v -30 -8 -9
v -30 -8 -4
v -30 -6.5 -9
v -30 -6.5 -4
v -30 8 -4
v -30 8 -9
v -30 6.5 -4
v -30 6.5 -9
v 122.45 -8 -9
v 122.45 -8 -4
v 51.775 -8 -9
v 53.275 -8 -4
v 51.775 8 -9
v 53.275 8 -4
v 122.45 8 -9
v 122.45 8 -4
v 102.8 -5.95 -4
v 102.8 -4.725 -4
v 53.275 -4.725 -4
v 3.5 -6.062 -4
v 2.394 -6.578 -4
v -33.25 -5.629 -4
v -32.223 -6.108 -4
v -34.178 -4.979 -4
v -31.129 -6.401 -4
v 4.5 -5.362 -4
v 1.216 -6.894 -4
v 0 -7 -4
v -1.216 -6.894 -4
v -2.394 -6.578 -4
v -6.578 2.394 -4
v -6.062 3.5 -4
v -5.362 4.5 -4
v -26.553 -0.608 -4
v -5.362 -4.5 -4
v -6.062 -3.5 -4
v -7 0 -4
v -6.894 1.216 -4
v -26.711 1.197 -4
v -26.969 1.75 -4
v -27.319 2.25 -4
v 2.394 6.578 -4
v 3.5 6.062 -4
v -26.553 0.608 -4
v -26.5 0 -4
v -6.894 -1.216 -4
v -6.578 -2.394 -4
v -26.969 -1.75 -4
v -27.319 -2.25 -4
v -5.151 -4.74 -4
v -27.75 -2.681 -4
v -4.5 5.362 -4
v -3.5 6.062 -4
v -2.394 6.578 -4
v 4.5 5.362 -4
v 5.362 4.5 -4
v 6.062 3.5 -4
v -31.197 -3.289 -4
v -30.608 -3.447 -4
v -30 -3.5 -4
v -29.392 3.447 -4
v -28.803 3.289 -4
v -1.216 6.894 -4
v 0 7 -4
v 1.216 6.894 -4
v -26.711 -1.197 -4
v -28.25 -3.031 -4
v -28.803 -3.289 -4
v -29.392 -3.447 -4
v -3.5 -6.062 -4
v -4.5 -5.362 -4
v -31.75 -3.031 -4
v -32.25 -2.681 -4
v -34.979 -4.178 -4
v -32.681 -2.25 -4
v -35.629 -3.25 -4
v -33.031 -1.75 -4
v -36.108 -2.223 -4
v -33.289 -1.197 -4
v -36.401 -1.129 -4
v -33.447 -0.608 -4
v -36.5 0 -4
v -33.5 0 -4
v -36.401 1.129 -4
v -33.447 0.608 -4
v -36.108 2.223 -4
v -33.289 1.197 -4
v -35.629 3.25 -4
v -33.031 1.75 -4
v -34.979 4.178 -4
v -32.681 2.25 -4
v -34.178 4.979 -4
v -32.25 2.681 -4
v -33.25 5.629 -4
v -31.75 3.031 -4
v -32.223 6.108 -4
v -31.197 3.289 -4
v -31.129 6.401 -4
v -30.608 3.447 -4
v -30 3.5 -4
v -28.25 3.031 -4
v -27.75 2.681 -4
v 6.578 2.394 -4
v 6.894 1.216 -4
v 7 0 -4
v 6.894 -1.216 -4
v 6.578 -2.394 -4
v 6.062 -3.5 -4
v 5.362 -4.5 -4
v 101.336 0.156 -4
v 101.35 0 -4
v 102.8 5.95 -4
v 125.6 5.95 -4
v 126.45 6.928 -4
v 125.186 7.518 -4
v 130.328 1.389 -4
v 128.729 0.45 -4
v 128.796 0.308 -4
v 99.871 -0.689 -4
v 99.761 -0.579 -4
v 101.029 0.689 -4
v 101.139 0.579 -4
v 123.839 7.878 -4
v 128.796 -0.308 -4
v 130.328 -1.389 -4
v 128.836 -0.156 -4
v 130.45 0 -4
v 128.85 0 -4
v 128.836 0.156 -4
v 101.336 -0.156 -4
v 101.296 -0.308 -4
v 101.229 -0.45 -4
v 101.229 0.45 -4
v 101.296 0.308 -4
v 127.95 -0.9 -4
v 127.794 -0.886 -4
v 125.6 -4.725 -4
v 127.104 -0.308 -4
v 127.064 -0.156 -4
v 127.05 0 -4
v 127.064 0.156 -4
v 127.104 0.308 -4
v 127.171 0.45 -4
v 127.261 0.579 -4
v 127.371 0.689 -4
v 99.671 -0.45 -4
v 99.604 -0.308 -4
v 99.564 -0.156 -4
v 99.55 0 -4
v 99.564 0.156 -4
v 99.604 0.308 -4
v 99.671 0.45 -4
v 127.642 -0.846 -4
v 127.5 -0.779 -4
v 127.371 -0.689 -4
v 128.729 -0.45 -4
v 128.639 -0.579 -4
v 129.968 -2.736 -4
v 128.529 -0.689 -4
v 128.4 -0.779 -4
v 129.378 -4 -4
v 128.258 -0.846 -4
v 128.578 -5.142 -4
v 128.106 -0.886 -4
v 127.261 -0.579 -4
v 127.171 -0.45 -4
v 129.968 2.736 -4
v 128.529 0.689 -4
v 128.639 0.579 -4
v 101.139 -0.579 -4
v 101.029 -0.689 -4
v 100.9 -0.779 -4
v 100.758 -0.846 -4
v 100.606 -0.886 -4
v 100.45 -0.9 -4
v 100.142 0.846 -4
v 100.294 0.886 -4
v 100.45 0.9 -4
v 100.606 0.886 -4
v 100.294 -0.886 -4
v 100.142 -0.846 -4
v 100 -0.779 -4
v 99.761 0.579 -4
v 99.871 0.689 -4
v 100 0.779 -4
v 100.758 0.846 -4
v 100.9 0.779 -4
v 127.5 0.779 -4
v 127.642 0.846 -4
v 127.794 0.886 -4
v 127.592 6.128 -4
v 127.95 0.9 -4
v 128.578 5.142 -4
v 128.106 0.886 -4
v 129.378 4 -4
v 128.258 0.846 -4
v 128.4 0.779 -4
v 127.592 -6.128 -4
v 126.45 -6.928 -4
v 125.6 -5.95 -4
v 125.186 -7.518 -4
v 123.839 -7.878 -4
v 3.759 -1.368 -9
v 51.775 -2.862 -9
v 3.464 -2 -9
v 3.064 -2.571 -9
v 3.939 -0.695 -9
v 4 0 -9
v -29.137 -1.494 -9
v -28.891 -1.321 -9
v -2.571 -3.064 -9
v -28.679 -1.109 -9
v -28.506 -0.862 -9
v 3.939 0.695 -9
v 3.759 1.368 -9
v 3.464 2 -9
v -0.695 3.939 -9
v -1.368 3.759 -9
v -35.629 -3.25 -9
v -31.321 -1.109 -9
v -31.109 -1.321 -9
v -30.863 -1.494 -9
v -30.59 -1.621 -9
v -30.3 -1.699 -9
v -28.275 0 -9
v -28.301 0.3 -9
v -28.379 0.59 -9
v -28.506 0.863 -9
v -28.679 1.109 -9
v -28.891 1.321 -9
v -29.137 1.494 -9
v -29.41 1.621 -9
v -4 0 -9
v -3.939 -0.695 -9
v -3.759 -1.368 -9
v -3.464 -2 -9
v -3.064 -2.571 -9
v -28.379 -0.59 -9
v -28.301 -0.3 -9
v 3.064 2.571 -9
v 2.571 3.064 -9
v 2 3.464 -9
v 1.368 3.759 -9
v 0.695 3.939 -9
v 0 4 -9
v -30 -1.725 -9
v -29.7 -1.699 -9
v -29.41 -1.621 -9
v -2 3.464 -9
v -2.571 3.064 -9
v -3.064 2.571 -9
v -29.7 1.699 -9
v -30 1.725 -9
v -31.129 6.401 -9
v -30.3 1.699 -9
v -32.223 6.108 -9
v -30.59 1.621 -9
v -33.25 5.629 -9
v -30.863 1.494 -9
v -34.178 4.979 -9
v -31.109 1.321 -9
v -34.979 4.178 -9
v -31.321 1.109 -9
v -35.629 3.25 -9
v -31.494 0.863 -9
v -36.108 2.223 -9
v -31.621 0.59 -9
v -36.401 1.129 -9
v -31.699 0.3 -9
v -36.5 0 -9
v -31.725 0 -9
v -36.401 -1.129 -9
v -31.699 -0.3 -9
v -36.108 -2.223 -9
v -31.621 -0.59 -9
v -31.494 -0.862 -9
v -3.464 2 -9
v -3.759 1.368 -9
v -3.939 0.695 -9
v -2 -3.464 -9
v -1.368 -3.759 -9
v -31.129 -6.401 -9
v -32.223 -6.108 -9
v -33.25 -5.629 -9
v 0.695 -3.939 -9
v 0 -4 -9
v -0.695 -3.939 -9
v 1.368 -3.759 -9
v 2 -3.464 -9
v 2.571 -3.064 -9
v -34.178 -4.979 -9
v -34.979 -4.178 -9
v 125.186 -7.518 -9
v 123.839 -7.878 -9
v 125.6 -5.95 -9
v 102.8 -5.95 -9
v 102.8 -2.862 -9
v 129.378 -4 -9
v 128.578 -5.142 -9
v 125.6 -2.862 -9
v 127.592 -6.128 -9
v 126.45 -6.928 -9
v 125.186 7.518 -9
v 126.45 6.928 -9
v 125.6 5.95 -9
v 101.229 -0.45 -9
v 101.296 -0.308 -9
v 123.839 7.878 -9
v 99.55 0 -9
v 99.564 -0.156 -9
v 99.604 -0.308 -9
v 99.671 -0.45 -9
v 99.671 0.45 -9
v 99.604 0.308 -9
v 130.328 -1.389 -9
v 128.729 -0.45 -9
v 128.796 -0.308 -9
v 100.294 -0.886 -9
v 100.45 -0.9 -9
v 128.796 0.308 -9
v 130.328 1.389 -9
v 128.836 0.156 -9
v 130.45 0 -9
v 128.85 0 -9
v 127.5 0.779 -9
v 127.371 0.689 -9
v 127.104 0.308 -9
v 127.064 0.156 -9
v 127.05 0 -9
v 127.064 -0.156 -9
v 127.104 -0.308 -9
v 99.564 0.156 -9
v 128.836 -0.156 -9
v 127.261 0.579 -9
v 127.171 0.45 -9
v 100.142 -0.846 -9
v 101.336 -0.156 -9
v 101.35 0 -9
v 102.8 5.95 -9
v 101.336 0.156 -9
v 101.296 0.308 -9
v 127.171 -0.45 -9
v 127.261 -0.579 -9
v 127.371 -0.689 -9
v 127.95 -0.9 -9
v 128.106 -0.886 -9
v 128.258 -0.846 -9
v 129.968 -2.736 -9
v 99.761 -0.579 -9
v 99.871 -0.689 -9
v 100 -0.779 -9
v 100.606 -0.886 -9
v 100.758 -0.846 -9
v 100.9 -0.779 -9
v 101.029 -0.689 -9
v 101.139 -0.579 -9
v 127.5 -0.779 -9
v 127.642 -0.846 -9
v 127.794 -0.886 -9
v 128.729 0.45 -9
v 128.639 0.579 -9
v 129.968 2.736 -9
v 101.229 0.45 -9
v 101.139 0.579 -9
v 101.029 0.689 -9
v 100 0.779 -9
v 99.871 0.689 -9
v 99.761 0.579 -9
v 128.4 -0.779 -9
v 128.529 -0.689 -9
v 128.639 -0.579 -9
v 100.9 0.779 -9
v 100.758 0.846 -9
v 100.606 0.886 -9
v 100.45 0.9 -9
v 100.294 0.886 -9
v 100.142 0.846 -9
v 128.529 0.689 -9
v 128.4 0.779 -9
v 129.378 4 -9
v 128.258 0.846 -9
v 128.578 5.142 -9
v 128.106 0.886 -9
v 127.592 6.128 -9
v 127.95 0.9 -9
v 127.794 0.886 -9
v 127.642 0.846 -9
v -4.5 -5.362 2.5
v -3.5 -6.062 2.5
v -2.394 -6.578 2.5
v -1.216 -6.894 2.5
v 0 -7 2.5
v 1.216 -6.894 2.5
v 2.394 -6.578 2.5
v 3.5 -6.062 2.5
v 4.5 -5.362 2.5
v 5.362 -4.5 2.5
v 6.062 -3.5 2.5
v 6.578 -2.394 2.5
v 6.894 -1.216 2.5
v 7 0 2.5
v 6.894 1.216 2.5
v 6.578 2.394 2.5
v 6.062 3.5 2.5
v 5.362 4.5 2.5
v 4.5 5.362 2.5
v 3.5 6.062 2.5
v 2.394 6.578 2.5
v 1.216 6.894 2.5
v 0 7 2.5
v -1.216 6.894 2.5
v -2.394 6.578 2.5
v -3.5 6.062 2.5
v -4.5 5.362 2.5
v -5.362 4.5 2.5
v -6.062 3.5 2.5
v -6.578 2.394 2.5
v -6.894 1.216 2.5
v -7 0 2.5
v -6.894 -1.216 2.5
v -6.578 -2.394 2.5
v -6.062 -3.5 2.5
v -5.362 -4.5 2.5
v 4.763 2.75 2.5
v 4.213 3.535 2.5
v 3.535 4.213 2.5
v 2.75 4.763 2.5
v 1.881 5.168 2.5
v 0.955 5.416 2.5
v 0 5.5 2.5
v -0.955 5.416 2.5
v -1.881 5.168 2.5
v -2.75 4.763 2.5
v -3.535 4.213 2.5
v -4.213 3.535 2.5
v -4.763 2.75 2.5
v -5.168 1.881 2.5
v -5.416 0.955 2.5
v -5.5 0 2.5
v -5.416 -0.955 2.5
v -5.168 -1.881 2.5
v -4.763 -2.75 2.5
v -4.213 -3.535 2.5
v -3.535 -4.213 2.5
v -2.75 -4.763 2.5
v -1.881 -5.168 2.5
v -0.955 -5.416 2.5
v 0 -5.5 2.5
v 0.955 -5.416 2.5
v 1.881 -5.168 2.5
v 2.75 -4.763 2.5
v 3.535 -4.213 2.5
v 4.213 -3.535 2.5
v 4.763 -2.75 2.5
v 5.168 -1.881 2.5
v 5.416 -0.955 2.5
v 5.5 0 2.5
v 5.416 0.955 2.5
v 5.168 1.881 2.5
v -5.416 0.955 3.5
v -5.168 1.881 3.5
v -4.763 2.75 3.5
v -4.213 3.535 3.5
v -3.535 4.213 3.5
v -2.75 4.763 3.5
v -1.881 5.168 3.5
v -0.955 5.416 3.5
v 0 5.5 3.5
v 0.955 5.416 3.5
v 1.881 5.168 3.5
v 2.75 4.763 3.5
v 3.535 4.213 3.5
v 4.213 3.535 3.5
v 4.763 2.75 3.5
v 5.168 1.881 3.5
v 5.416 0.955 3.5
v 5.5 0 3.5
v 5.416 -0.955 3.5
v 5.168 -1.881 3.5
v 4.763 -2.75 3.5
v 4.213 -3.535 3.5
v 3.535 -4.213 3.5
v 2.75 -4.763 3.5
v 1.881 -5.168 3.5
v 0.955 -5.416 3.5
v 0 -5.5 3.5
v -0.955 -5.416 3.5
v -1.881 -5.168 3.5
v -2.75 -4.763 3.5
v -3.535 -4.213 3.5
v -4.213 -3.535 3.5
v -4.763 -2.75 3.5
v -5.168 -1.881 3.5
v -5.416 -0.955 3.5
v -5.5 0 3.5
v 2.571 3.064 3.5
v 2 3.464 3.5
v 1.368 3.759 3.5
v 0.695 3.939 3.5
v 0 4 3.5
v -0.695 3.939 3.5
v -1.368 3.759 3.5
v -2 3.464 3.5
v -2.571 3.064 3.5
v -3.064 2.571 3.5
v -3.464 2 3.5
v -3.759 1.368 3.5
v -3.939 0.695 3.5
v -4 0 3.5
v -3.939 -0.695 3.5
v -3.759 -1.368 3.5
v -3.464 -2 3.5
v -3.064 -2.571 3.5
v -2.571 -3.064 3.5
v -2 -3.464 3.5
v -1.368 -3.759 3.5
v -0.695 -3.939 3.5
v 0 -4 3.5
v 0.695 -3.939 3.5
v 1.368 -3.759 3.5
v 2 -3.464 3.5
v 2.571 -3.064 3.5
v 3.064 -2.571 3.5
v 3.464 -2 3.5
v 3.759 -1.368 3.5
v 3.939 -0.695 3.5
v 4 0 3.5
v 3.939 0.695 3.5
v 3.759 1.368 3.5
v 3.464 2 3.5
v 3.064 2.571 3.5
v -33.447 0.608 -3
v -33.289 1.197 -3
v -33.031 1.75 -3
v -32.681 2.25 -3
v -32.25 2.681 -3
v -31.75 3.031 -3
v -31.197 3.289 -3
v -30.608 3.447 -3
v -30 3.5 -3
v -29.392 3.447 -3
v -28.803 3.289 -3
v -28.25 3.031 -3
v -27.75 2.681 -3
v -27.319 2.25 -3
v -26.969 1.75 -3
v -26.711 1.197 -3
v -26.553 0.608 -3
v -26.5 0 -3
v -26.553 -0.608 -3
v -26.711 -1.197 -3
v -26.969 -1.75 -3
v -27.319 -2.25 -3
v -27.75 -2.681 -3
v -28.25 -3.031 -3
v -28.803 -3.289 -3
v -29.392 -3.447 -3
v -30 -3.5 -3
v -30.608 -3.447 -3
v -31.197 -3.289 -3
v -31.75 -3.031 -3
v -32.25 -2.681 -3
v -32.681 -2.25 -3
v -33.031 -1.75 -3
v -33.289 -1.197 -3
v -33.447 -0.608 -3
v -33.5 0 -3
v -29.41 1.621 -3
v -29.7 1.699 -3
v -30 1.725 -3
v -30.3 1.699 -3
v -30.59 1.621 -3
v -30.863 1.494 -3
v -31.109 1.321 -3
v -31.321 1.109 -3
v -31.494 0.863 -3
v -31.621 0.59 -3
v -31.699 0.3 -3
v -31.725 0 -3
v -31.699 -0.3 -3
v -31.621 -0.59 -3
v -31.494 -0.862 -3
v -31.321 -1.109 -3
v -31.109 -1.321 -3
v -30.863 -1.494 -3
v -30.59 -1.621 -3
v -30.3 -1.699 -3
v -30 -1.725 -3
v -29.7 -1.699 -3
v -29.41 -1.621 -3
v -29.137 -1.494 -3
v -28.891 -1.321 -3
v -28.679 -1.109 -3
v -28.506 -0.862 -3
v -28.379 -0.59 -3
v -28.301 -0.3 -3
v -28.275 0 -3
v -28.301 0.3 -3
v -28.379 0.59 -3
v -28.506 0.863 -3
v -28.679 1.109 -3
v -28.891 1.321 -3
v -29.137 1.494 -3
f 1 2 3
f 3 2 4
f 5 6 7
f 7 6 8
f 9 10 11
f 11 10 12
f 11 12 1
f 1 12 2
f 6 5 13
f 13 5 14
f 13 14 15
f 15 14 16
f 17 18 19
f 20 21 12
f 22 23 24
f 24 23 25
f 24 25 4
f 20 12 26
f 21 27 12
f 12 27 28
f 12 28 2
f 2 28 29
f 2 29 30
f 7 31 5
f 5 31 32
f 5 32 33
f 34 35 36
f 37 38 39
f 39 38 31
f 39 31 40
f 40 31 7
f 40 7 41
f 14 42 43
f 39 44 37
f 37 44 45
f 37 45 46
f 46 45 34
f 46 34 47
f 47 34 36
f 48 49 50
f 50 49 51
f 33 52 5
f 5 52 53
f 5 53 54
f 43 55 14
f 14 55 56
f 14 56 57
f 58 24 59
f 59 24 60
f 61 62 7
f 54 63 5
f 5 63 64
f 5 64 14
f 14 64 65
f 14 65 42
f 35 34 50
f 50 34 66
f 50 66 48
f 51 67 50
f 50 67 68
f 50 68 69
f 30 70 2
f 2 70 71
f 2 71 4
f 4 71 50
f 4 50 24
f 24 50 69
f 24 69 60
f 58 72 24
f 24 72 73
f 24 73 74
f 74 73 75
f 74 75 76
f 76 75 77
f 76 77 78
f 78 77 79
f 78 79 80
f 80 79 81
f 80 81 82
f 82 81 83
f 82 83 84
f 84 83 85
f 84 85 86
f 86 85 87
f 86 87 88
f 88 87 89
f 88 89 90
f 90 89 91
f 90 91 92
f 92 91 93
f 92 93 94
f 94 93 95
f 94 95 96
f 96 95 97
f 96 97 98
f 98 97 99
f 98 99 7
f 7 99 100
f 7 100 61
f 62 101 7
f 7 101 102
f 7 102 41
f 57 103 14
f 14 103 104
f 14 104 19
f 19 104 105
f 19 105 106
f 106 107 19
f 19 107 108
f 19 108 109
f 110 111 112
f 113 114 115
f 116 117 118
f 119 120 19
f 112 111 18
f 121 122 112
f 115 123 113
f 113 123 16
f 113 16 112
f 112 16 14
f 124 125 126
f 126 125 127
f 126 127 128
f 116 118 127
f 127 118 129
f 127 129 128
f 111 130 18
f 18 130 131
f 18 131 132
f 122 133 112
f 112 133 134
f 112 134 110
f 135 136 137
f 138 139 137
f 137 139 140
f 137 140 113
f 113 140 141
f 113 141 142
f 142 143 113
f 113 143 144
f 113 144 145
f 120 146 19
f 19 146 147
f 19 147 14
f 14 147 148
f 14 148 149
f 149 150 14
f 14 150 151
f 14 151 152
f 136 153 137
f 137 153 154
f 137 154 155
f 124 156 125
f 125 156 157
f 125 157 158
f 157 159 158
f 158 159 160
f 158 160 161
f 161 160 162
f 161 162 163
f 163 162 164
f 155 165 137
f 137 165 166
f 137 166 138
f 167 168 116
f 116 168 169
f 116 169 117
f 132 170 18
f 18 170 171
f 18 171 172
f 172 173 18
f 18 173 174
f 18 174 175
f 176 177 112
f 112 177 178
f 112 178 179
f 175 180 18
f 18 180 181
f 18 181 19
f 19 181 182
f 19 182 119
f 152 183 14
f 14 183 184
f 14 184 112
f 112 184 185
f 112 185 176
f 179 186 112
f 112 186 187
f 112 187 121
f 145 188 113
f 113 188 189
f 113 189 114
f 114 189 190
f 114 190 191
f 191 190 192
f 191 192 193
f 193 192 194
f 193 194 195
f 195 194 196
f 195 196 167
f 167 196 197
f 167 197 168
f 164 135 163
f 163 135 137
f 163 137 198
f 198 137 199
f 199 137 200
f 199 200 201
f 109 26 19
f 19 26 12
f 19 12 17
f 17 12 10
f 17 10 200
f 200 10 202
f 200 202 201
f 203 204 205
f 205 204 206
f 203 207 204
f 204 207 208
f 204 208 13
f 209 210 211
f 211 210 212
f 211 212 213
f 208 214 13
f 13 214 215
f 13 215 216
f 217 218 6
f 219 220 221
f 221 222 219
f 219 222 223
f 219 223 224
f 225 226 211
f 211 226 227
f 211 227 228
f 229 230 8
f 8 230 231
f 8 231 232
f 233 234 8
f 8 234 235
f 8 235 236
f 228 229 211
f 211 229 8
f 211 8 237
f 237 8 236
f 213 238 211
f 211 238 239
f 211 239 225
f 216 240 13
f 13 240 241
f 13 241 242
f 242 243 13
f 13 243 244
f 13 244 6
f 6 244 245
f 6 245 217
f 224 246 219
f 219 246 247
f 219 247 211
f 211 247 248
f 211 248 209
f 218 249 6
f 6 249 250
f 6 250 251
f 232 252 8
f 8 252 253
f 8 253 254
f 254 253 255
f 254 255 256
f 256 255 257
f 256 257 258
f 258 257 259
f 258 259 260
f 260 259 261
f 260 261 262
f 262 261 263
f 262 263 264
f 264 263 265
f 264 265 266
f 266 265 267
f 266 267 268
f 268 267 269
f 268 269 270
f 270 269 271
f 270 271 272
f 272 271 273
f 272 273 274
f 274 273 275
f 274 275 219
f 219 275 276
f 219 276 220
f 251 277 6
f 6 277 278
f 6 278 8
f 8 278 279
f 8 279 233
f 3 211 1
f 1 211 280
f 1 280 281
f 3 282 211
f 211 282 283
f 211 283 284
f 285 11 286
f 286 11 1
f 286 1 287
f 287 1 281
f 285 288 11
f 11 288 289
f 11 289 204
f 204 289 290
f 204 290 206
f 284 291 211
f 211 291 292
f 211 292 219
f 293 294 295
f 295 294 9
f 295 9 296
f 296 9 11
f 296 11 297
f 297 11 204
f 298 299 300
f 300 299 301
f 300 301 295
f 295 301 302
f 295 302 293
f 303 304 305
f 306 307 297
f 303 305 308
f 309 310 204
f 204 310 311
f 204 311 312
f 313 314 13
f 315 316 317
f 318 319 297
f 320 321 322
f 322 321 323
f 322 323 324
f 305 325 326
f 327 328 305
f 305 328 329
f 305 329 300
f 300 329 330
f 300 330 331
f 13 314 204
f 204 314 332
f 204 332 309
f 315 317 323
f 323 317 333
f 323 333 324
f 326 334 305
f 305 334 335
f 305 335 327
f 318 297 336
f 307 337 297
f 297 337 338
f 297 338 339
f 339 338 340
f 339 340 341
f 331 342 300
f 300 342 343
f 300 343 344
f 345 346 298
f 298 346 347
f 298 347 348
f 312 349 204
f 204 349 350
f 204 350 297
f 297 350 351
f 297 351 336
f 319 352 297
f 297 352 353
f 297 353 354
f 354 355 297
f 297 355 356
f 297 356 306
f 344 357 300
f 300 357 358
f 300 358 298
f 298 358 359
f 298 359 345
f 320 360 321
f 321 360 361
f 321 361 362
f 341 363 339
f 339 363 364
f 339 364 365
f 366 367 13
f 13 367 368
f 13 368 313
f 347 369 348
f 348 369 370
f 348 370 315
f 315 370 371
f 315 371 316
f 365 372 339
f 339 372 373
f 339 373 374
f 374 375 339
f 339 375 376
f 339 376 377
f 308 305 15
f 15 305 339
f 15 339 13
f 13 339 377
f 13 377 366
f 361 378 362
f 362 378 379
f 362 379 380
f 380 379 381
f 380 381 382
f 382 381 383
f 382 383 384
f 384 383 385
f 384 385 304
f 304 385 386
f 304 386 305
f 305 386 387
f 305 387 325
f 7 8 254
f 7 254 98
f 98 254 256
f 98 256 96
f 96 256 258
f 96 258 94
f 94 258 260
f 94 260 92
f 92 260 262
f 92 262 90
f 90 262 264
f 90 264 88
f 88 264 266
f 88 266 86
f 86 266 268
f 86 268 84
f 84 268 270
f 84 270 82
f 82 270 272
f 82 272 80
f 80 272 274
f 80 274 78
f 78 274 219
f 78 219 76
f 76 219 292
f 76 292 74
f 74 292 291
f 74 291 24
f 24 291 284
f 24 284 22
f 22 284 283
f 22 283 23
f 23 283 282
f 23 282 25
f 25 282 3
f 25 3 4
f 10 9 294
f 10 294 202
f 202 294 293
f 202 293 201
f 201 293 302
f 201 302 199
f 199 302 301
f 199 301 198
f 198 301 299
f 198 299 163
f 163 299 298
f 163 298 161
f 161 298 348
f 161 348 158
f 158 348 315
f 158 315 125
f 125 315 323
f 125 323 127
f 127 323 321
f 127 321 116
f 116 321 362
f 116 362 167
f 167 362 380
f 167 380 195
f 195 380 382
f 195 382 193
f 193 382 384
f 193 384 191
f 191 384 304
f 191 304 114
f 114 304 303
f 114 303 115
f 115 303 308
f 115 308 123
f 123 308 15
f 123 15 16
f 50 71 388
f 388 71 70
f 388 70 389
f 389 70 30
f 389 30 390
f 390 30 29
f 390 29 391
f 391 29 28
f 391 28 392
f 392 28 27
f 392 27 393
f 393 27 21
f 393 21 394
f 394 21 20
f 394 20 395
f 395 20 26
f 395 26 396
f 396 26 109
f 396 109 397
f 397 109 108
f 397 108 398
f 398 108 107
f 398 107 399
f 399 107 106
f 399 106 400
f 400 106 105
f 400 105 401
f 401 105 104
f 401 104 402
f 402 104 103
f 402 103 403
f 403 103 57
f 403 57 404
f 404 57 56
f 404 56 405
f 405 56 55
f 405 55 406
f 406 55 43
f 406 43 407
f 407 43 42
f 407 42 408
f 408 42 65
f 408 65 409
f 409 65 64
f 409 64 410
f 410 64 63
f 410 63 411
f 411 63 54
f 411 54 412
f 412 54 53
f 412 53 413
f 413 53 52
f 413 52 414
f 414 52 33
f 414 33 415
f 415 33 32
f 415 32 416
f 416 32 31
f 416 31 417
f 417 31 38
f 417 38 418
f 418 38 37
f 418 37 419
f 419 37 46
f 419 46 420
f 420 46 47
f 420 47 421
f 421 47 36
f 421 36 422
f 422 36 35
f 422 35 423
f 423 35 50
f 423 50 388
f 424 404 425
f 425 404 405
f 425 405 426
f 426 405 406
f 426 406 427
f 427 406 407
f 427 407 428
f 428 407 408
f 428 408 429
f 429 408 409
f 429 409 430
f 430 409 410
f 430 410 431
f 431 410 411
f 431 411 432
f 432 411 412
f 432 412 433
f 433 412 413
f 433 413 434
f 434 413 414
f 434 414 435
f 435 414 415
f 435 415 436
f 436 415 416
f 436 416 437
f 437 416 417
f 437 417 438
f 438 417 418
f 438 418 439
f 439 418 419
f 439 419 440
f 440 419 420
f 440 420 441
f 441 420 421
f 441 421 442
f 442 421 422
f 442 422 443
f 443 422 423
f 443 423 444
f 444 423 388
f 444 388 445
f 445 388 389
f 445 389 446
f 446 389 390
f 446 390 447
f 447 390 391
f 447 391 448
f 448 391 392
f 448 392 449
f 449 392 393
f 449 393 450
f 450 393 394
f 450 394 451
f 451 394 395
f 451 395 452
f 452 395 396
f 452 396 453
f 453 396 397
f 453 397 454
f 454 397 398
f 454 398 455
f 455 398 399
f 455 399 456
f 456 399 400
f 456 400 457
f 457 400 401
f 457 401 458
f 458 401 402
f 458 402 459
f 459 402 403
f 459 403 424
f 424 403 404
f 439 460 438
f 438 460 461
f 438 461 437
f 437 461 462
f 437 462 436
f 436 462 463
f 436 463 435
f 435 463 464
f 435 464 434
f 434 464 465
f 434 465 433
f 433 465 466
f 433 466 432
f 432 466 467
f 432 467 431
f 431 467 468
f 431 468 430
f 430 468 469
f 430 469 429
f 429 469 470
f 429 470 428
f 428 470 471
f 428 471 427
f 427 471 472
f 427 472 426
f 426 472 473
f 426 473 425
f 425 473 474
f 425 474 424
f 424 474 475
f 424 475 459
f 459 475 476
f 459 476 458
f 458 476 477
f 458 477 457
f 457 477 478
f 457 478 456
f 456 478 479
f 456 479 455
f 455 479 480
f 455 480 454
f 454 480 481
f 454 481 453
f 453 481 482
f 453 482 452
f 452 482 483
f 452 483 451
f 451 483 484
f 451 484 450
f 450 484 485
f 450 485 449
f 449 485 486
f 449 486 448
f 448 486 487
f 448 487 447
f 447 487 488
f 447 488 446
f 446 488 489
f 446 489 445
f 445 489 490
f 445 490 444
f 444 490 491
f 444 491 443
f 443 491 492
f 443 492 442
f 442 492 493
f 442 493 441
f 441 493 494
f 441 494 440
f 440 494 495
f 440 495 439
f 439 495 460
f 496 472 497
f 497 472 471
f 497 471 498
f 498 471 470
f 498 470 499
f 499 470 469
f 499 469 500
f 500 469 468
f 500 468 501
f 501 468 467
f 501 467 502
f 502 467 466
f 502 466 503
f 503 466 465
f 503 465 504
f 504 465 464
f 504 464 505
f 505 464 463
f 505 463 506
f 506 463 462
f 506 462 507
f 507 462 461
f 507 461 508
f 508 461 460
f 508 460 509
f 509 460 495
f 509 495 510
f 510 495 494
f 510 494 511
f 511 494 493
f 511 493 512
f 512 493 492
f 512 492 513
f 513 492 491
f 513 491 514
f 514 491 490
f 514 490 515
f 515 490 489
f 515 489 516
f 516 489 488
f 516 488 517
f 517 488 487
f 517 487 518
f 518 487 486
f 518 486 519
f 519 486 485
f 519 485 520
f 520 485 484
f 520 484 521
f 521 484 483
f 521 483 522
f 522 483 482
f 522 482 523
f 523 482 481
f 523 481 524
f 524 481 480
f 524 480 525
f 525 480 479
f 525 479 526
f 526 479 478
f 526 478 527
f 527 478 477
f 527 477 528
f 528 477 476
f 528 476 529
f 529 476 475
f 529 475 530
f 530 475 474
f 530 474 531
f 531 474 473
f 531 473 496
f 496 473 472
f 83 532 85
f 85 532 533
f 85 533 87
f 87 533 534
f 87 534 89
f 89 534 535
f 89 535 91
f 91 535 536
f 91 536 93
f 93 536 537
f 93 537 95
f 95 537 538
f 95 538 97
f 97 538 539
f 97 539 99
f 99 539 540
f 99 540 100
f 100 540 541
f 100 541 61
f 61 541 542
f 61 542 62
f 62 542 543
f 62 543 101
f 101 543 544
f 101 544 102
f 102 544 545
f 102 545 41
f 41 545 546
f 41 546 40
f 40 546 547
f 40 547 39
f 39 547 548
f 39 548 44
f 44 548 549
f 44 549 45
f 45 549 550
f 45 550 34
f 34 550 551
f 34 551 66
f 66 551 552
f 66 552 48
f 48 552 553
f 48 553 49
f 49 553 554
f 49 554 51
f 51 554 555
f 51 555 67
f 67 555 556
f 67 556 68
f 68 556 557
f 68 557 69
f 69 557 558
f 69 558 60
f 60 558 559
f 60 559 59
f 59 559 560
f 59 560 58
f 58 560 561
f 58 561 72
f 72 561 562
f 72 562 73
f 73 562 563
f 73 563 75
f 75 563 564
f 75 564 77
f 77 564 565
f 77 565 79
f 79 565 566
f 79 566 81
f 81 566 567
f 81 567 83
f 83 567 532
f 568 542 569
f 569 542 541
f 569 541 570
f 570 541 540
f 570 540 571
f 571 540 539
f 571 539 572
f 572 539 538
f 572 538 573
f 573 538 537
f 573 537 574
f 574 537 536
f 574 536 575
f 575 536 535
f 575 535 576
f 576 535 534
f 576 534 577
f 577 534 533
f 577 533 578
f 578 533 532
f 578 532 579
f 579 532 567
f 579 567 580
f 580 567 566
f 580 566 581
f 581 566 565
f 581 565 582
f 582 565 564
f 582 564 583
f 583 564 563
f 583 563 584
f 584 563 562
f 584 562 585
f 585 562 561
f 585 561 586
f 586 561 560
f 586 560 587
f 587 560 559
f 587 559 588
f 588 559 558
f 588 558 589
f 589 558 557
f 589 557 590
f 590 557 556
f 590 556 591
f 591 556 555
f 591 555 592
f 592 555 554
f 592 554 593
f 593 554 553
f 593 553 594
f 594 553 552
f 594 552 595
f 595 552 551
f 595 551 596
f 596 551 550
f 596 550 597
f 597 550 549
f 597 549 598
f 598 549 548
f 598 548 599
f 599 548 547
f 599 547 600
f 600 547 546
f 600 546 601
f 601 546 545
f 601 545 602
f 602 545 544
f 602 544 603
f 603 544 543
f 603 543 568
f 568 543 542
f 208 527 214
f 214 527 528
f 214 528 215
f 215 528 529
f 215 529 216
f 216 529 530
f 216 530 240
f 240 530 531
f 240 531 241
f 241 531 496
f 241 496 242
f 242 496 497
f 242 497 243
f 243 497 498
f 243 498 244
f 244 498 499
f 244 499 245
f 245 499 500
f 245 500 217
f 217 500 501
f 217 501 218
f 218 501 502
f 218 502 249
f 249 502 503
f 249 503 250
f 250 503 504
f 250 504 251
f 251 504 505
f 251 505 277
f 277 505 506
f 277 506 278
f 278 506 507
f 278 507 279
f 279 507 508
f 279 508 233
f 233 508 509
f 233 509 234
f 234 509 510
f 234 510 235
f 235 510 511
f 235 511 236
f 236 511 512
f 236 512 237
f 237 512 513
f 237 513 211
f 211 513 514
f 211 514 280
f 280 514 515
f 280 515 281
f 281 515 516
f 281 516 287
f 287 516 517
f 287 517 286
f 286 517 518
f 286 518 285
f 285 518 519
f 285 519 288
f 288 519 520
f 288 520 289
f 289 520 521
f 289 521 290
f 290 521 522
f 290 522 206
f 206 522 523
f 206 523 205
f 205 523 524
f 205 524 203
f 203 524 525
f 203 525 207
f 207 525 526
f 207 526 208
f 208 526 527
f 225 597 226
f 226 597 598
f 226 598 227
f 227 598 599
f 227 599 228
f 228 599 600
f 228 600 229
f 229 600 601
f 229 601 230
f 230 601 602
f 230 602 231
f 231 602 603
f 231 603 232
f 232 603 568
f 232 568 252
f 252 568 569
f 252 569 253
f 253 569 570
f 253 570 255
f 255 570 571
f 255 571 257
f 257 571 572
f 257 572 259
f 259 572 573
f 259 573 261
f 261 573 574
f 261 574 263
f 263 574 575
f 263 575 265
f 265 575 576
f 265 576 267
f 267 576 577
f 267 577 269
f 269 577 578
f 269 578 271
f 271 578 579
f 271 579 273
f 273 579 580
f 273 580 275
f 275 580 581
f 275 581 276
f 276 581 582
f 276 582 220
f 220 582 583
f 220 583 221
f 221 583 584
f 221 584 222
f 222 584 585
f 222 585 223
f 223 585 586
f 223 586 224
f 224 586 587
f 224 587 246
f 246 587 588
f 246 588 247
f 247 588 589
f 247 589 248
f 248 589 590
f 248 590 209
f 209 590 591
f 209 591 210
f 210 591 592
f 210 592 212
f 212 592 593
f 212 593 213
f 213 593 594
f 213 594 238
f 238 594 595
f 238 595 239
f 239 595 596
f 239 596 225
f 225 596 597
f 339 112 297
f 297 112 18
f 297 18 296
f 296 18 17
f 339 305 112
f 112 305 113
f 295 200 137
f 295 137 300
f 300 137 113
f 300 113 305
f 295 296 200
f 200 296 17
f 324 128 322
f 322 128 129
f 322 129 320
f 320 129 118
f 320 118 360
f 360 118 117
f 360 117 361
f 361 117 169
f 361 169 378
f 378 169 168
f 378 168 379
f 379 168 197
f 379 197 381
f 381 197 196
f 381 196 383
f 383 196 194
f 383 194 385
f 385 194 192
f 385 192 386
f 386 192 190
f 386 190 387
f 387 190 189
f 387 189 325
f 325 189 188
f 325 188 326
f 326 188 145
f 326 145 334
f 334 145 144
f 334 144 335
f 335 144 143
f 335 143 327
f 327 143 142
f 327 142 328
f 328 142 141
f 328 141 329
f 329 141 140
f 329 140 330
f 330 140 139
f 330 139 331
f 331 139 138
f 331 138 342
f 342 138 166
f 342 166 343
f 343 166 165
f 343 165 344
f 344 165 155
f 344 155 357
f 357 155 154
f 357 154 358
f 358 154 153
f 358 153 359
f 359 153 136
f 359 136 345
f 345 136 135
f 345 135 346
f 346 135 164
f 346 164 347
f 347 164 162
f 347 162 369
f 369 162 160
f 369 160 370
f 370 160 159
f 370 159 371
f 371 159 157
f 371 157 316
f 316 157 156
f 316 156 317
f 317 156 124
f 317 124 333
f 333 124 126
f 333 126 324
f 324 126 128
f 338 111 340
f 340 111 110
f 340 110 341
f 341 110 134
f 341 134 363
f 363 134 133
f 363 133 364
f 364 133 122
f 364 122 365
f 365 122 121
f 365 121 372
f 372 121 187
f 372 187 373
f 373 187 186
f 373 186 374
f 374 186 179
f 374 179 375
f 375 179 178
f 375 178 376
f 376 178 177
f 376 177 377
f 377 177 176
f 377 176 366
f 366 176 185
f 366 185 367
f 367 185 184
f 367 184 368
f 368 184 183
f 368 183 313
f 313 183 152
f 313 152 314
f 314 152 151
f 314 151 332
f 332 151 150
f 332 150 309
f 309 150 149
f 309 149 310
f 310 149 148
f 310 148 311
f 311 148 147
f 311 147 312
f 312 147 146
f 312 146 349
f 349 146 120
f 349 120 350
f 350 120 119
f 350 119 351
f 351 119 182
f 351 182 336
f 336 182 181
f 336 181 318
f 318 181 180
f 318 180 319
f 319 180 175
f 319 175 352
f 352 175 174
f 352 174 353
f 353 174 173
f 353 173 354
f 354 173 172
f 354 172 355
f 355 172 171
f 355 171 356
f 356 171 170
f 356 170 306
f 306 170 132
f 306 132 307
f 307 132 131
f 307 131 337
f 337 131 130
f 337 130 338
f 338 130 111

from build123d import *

# Parameters (mm, degrees)
BOSS_EXTRUDE1_START     = -9
SKETCH1_W               = 152.45
SKETCH1_H               = 16
BOSS_EXTRUDE1_DEPTH     = 5
BOSS_EXTRUDE2_START     = -9
SKETCH2_R               = 6.5
BOSS_EXTRUDE2_DEPTH     = 5
BOSS_EXTRUDE3_START     = -9
SKETCH3_R               = 8
BOSS_EXTRUDE3_DEPTH     = 5
BOSS_EXTRUDE4_START     = -9
SKETCH4_R               = 7
BOSS_EXTRUDE4_DEPTH     = 11.5
BOSS_EXTRUDE5_START     = 2.5
SKETCH5_R               = 5.5
BOSS_EXTRUDE5_DEPTH     = 1
BOSS_EXTRUDE6_START     = -4
SKETCH6_R               = 3.5
BOSS_EXTRUDE6_DEPTH     = 1
CUT_EXTRUDE1_DEPTH      = 132.004589614
CUT_EXTRUDE1_DEPTH_BACK = 132.004589614
SKETCH7_R               = 4
CUT_EXTRUDE2_DEPTH      = 132.004589614
CUT_EXTRUDE2_DEPTH_BACK = 132.004589614
SKETCH8_R               = 1.725
CUT_EXTRUDE3_DEPTH      = 132.004589614
CUT_EXTRUDE3_DEPTH_BACK = 132.004589614
SKETCH9_W               = 22.8
SKETCH9_H               = 11.9
CUT_EXTRUDE4_DEPTH      = 132.004589614
CUT_EXTRUDE4_DEPTH_BACK = 132.004589614
SKETCH10_R              = 0.9


with BuildPart() as part:
    # Sketch1 → Boss-Extrude1 (new body)
    with BuildSketch(Plane.XY.offset(BOSS_EXTRUDE1_START)):
        with Locations((46.225, 0)):
            Rectangle(SKETCH1_W, SKETCH1_H)
    extrude(amount=BOSS_EXTRUDE1_DEPTH)

    # Sketch2 → Boss-Extrude2 (add)
    with BuildSketch(Plane.XY.offset(BOSS_EXTRUDE2_START)):
        with Locations((-30, 0)):
            Circle(SKETCH2_R)
    extrude(amount=BOSS_EXTRUDE2_DEPTH)

    # Sketch3 → Boss-Extrude3 (add)
    with BuildSketch(Plane.XY.offset(BOSS_EXTRUDE3_START)):
        with Locations((122.45, 0)):
            Circle(SKETCH3_R)
    extrude(amount=BOSS_EXTRUDE3_DEPTH)

    # Sketch4 → Boss-Extrude4 (add)
    with BuildSketch(Plane.XY.offset(BOSS_EXTRUDE4_START)):
        Circle(SKETCH4_R)
    extrude(amount=BOSS_EXTRUDE4_DEPTH)

    # Sketch5 → Boss-Extrude5 (add)
    with BuildSketch(Plane.XY.offset(BOSS_EXTRUDE5_START)):
        Circle(SKETCH5_R)
    extrude(amount=BOSS_EXTRUDE5_DEPTH)

    # Sketch6 → Boss-Extrude6 (add)
    with BuildSketch(Plane.XY.offset(BOSS_EXTRUDE6_START)):
        with Locations((-30, 0)):
            Circle(SKETCH6_R)
    extrude(amount=BOSS_EXTRUDE6_DEPTH)

    # Sketch7 → Cut-Extrude1 (cut, two sides: drawn at the far end of the back side and taken through both)
    with BuildSketch(Plane.XY.offset(-CUT_EXTRUDE1_DEPTH_BACK)):
        Circle(SKETCH7_R)
    extrude(amount=CUT_EXTRUDE1_DEPTH + CUT_EXTRUDE1_DEPTH_BACK, mode=Mode.SUBTRACT)

    # Sketch8 → Cut-Extrude2 (cut, two sides: drawn at the far end of the back side and taken through both)
    with BuildSketch(Plane.XY.offset(-CUT_EXTRUDE2_DEPTH_BACK)):
        with Locations((-30, 0)):
            Circle(SKETCH8_R)
    extrude(amount=CUT_EXTRUDE2_DEPTH + CUT_EXTRUDE2_DEPTH_BACK, mode=Mode.SUBTRACT)

    # Sketch9 → Cut-Extrude3 (cut, two sides: drawn at the far end of the back side and taken through both)
    with BuildSketch(Plane.XY.offset(-CUT_EXTRUDE3_DEPTH_BACK)):
        with Locations((114.2, 0)):
            Rectangle(SKETCH9_W, SKETCH9_H)
    extrude(amount=CUT_EXTRUDE3_DEPTH + CUT_EXTRUDE3_DEPTH_BACK, mode=Mode.SUBTRACT)

    # Sketch10 → Cut-Extrude4 (cut, two sides: drawn at the far end of the back side and taken through both)
    with BuildSketch(Plane.XY.offset(-CUT_EXTRUDE4_DEPTH_BACK)):
        with Locations((100.45, 0)):
            Circle(SKETCH10_R)
        with Locations((127.95, 0)):
            Circle(SKETCH10_R)
    extrude(amount=CUT_EXTRUDE4_DEPTH + CUT_EXTRUDE4_DEPTH_BACK, mode=Mode.SUBTRACT)


solid = part.part
